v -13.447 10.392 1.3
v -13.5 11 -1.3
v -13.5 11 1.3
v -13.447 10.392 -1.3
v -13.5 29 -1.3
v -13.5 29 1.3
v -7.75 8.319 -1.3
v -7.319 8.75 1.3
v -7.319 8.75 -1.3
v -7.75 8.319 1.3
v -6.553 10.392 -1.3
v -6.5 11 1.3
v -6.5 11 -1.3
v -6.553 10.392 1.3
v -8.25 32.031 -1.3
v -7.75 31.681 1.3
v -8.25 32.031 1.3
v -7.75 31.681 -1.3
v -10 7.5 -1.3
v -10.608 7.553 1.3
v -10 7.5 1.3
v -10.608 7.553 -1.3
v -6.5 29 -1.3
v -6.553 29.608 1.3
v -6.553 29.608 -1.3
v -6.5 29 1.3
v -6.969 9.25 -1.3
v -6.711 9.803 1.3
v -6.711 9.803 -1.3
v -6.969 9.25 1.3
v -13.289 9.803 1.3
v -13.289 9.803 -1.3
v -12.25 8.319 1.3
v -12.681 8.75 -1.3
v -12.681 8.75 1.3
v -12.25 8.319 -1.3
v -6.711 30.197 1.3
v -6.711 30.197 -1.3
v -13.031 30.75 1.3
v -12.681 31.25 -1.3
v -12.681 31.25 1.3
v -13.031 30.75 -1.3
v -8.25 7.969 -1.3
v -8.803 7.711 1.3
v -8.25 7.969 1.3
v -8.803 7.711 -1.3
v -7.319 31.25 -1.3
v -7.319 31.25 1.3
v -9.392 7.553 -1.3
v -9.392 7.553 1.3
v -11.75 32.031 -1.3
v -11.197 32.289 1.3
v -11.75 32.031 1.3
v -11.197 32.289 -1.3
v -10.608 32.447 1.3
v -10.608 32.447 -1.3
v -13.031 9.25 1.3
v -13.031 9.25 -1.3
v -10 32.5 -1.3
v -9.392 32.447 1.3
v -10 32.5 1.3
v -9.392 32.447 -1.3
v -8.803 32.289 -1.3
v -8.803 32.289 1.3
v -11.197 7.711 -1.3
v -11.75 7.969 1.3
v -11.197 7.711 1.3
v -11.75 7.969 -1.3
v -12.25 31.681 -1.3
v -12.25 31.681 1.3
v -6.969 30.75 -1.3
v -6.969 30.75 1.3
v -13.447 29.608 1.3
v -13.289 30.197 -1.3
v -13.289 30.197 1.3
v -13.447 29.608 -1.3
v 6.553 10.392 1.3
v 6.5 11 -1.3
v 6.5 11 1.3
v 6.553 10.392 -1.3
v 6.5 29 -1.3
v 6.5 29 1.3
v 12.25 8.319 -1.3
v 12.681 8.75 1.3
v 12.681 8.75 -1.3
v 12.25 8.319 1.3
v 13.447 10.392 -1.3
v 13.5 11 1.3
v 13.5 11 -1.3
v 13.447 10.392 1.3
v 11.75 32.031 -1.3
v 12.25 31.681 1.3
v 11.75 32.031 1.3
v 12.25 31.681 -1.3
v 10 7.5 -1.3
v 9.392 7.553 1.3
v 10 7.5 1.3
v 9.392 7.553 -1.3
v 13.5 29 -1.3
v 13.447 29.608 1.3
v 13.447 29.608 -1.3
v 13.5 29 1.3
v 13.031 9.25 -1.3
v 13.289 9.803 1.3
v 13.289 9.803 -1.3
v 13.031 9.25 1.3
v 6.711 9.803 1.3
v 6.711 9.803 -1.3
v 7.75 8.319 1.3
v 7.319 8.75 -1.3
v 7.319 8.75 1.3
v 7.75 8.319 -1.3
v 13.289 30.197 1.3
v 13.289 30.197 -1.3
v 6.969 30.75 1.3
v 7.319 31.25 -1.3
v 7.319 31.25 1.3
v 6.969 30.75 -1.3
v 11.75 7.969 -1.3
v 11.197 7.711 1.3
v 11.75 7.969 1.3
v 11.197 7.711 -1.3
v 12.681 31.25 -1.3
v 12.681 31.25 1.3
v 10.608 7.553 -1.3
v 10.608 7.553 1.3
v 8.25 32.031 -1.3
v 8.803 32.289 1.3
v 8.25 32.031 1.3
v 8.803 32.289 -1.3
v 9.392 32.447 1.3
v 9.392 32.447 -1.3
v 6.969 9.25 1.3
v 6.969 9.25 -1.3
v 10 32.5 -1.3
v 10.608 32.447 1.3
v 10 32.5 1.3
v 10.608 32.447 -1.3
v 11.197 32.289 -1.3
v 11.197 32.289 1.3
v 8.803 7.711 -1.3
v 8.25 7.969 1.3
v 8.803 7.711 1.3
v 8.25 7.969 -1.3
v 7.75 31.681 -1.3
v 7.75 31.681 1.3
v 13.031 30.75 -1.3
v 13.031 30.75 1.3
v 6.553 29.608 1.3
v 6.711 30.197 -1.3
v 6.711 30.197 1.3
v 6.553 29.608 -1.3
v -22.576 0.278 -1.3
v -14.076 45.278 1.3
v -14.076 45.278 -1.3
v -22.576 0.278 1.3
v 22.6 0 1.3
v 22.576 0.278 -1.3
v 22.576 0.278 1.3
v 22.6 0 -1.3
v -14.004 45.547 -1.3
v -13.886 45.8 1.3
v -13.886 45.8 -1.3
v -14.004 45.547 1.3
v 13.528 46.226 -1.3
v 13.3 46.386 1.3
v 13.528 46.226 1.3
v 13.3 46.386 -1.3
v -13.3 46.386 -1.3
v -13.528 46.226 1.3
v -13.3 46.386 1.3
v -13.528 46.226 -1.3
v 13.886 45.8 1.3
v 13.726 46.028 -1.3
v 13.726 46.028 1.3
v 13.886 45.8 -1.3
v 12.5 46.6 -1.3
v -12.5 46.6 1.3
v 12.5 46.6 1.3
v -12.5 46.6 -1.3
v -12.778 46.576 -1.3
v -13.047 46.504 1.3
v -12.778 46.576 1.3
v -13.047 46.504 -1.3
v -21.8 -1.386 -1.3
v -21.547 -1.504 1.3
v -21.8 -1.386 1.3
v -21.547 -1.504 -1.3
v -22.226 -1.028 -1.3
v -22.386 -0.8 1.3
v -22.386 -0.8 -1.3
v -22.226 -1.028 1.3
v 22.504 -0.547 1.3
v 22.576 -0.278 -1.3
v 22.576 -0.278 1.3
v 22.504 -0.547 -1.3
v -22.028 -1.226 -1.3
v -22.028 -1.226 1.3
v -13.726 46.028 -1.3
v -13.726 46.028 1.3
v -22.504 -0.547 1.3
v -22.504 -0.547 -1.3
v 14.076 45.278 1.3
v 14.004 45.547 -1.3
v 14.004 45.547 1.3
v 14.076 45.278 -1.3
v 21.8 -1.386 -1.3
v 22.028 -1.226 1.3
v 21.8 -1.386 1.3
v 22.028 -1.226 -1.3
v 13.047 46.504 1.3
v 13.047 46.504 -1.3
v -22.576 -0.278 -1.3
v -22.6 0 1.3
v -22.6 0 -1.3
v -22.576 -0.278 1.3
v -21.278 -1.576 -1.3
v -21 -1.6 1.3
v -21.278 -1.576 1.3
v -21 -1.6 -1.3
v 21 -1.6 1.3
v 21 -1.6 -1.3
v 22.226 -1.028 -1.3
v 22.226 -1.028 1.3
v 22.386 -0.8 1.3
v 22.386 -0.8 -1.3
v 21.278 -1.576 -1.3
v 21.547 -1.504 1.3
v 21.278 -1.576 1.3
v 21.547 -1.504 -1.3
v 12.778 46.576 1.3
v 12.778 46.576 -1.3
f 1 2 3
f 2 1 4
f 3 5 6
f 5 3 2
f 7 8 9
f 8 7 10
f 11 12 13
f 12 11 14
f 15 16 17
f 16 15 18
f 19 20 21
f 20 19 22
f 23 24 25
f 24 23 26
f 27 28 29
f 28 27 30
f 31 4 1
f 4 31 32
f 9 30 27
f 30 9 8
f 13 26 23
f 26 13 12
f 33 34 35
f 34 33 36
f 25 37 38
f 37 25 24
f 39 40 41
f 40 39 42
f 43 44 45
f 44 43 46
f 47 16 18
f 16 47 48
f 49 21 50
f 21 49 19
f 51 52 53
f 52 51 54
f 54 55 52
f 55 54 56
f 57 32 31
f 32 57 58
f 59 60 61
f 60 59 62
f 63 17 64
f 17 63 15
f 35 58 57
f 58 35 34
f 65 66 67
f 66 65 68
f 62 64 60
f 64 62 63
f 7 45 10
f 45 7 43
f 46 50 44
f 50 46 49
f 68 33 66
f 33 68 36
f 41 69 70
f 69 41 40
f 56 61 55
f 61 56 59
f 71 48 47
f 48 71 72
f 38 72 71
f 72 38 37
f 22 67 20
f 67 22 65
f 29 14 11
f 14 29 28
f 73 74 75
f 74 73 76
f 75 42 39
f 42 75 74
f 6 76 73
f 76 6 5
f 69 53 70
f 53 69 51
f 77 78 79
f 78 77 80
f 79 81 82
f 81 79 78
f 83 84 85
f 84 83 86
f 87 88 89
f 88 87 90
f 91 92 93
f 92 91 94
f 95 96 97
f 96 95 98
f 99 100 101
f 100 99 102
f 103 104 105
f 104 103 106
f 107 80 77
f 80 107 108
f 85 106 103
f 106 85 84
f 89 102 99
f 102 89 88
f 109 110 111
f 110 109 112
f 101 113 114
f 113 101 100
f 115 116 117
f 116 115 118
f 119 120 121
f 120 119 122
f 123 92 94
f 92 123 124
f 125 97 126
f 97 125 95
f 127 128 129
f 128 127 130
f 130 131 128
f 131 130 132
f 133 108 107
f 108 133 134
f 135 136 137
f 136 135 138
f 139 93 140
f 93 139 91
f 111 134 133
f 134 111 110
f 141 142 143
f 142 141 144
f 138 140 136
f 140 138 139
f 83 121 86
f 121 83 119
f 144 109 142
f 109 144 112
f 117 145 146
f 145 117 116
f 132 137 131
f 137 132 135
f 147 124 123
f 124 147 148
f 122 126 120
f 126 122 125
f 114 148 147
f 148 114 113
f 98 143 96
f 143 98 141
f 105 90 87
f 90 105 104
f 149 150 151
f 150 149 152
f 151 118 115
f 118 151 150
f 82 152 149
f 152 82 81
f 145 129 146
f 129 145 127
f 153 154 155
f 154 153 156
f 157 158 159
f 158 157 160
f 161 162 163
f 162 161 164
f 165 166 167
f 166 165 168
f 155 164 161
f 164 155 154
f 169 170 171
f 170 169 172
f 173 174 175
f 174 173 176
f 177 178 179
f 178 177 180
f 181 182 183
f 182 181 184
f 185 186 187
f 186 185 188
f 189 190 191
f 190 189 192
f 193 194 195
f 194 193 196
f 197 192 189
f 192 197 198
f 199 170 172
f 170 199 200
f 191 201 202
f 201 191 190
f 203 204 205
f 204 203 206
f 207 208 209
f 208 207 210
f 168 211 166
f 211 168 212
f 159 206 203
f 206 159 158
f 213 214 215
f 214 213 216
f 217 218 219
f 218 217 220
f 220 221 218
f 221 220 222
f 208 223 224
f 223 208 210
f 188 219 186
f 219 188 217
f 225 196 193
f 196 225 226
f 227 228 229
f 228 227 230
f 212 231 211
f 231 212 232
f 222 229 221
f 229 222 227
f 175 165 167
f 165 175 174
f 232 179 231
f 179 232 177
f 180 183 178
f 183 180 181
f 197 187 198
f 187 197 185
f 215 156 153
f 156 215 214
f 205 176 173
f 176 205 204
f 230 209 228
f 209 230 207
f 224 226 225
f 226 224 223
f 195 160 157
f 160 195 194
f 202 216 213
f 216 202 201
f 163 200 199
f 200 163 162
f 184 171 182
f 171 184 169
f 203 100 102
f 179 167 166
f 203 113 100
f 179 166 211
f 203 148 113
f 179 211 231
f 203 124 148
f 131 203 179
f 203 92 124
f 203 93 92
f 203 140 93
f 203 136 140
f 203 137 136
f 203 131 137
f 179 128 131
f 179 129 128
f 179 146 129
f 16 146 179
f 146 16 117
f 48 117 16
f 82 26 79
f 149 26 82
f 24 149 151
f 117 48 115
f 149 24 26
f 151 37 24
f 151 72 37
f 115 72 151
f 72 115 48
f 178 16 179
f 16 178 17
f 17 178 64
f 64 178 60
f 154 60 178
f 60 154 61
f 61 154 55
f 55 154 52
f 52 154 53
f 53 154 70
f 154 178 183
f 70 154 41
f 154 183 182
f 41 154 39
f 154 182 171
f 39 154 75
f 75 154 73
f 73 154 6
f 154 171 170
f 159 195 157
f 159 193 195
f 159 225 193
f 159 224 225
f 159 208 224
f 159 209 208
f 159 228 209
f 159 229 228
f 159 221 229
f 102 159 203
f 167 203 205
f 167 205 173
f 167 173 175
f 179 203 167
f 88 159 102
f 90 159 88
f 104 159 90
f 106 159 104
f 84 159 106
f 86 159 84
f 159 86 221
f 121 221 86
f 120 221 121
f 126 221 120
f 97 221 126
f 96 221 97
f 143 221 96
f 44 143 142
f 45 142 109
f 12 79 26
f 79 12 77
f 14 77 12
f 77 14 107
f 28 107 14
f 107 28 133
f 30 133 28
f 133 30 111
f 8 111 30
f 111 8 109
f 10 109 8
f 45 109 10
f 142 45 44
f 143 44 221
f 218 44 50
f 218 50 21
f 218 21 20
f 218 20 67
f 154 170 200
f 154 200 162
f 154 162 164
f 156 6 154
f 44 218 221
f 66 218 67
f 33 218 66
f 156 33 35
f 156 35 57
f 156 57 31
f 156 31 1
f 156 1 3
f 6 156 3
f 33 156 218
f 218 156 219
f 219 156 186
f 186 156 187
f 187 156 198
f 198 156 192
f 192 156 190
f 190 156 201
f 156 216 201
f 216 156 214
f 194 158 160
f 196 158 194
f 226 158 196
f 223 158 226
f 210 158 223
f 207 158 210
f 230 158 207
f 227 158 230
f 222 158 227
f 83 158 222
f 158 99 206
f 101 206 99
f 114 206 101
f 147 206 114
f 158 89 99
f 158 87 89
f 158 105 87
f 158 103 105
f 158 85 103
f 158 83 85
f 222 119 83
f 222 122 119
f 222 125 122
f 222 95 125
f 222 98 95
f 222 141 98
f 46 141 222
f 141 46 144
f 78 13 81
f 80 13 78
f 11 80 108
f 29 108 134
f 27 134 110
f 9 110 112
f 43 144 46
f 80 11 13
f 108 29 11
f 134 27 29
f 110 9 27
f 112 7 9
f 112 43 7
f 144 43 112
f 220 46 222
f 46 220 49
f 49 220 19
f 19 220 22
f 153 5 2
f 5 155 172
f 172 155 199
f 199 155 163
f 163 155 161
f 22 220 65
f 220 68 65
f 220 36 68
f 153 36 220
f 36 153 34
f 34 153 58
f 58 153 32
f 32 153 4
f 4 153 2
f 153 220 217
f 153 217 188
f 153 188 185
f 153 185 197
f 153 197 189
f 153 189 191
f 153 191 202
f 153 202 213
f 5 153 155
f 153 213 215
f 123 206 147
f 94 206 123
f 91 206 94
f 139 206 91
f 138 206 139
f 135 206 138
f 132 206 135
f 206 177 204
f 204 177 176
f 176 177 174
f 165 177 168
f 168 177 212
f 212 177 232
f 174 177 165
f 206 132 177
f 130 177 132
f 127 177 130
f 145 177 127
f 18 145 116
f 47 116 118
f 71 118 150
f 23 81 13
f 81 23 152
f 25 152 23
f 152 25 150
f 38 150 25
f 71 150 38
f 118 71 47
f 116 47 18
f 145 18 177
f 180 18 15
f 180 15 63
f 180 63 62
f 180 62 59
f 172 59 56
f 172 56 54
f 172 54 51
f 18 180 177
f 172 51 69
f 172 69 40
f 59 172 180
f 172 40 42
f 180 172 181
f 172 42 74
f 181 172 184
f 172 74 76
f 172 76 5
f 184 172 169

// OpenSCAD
//  Characters    Behavior
//     //            ignore, comment
//     $fa           minimum angle
//     *             disable
//     !             show only
//     #             highlight / debug
//     %             transparent / background
// http://www.openscad.org/cheatsheet/index.html

include <BOSL/constants.scad>
use <BOSL/masks.scad>
use <BOSL/math.scad>
use <BOSL/metric_screws.scad>
use <BOSL/paths.scad>
use <BOSL/shapes.scad>
use <BOSL/transforms.scad>

// Globals

convexity = 4;
number_of_fragments = 0.10 * 360;
eps = 0.001;
mm_per_inch = 25.4;

$fn = number_of_fragments;

// Functions

// Modules

// Objects

let(
    m4_pass_diameter = 3.5,
    tslot_spacing = 20,
    gasket_thickness = 2.6,
    gasket_fillet = 1.6,
    gasket_bottom_width = 42,
    gasket_top_width = 25,
    gasket_length = 45,
    slot_y_offset = 20,
    slot_length = 18
)
difference()
{
    union()
    {
        color("lightgreen")
        hull()
        {
            xspread(gasket_bottom_width)
            cyl(r=gasket_fillet,
                h=gasket_thickness);

            ymove(gasket_length)
            xspread(gasket_top_width)
            cyl(r=gasket_fillet,
                h=gasket_thickness);
        }
    }

    union()
    {
        color("orange")
        zscale(1.01)
        ymove(slot_y_offset)
        xspread(tslot_spacing)
        hull()
        {
            yspread(slot_length)
            cyl(r=m4_pass_diameter,
                h=gasket_thickness);
        }
    }
}
